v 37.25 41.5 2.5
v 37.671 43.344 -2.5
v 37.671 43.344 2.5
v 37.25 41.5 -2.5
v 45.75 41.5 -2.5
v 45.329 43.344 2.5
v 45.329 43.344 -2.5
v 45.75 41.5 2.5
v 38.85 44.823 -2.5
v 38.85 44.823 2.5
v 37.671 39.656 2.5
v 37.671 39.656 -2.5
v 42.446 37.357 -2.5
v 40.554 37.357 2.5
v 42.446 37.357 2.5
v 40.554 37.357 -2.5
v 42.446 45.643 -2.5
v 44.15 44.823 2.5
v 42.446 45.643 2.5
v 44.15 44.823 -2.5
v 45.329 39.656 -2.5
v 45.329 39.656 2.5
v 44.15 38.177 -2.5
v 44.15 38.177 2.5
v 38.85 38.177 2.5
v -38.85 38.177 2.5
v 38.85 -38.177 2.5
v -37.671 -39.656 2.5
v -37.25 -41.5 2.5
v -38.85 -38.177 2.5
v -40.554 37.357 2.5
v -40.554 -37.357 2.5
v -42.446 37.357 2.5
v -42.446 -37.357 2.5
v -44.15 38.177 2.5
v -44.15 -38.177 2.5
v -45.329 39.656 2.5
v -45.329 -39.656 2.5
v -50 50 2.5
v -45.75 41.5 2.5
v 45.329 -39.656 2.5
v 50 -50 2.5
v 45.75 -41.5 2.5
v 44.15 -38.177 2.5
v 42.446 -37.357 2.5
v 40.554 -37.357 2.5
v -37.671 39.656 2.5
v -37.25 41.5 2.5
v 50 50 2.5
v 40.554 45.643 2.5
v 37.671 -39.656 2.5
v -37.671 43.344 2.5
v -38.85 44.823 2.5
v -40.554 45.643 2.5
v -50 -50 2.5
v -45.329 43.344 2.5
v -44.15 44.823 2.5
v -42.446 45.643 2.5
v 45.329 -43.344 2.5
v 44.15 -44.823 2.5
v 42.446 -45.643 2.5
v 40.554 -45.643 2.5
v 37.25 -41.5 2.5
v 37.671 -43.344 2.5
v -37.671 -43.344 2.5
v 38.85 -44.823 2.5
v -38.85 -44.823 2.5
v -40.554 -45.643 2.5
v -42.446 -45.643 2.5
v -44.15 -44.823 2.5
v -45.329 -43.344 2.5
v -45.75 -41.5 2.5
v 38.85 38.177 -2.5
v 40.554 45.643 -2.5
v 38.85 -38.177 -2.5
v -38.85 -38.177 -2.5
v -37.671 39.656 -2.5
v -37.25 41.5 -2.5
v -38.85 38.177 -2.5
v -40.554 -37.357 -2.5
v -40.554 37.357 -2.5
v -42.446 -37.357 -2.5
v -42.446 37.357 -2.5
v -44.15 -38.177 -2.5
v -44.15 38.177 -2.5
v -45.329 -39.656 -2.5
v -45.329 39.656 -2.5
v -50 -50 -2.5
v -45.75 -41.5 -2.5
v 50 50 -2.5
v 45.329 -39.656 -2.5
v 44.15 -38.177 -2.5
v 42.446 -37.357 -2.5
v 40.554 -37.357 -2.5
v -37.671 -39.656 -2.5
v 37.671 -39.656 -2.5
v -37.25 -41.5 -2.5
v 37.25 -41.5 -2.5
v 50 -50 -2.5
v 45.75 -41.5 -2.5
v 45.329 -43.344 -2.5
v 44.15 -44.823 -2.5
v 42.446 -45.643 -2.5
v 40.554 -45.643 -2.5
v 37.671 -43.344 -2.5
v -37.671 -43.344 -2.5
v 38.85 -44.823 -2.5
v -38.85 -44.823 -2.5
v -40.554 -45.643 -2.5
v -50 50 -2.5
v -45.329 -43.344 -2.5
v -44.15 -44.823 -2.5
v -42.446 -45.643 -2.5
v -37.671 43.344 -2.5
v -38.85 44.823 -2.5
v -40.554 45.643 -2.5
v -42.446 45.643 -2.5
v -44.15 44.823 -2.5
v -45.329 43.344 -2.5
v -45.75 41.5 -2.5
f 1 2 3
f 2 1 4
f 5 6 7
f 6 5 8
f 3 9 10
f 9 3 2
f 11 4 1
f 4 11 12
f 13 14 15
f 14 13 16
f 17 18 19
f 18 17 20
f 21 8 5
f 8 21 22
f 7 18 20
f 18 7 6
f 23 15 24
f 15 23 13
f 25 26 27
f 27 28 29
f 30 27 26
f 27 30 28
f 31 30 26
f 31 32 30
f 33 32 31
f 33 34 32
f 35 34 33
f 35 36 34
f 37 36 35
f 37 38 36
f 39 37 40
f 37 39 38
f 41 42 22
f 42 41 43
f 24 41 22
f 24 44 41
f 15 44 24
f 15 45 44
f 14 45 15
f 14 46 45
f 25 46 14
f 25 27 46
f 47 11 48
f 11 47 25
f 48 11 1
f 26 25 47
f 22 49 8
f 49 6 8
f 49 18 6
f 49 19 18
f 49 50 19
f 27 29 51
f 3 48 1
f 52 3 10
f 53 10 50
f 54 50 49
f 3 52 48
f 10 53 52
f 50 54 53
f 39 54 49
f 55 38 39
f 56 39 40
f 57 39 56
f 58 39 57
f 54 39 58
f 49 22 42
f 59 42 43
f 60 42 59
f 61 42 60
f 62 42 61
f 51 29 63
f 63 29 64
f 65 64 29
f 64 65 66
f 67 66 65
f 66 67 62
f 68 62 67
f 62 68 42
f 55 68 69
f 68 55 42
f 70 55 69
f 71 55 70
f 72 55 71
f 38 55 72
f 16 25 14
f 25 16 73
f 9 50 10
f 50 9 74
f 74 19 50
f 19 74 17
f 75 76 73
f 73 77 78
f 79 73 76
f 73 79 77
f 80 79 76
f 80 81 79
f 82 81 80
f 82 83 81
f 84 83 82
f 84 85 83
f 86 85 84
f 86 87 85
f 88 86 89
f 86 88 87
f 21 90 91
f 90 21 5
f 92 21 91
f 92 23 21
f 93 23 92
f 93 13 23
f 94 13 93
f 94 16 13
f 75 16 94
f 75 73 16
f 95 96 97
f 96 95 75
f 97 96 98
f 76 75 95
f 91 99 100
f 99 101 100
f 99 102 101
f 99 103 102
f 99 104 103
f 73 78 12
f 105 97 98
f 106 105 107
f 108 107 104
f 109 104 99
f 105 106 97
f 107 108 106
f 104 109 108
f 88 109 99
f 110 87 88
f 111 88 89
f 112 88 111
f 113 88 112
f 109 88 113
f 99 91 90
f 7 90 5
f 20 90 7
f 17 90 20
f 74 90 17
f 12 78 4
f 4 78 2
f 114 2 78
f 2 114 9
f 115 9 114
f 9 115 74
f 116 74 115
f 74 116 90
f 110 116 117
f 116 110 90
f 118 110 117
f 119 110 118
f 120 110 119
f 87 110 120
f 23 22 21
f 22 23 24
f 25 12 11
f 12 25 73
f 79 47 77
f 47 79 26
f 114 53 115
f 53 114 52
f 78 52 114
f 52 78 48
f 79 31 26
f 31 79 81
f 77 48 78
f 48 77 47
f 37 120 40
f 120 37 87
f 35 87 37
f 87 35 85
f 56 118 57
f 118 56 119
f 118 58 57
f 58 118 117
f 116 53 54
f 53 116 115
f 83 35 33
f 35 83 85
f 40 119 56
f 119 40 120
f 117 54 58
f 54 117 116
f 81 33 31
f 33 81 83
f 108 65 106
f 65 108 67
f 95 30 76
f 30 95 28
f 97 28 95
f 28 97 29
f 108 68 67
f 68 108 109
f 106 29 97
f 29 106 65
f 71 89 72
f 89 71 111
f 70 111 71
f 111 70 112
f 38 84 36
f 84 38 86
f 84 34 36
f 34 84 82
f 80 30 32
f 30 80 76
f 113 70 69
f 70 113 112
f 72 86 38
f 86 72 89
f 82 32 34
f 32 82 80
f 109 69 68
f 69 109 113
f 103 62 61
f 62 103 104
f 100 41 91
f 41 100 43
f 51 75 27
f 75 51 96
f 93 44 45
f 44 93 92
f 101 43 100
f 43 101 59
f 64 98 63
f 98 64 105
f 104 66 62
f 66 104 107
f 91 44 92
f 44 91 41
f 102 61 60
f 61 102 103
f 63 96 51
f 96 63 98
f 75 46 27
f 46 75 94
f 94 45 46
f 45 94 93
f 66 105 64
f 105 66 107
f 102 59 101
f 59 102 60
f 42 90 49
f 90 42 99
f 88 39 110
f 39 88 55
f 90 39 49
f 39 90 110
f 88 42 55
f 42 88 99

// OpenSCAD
// Generated by SolidPython 1.1.3 on 2023-07-05 19:44:40


difference() {
	cube(center = true, size = [100, 100, 5]);
	union() {
		translate(v = [41.5000000000, 41.5000000000]) {
			cylinder(center = true, h = 5, r = 4.2500000000);
		}
		translate(v = [-41.5000000000, 41.5000000000]) {
			cylinder(center = true, h = 5, r = 4.2500000000);
		}
		translate(v = [-41.5000000000, -41.5000000000]) {
			cylinder(center = true, h = 5, r = 4.2500000000);
		}
		translate(v = [41.5000000000, -41.5000000000]) {
			cylinder(center = true, h = 5, r = 4.2500000000);
		}
	}
}
/***********************************************
*********      SolidPython code:      **********
************************************************
 
import solid
import numbers
import pudb
from solid.utils import *
import viewscad
import subprocess
import os
import os.path as osp
import math
import sys

chamfer_extrude=solid.import_scad("./chamfer_extrude.scad")
chamfer_extrude=chamfer_extrude.chamfer_extrude
r = viewscad.Renderer(width=800, height=800)

def debug(model,f_name,path="/home/ts/code/projects/mfd/designs/debug"):
    solid.scad_render_to_file(model,osp.join(path,f_name)+".scad")
#generate position list of wells using offset from center
wells_pos_from_center_4 = lambda offset: [[-offset,offset],
                                        [offset, offset],
                                        [-offset, -offset],
                                        [offset, -offset]]
#wells_pos_from_center_2 = lambda offset: [[0,offset],
#                                        [0, -offset]]
wells_pos_from_center_2 = lambda offset: [[offset,0],
                                        [-offset,0]]

def make_well(dims,shape=None,height=None,dxf=False):
    def circle_cylinder():
        if dxf or (height is None):
            well = solid.circle(r=dims, segments=64)
        else:
            well = solid.cylinder(r=dims, h=height, segments=64, center = True)
        return well
    if dims is None:
        sys.exit("radius needs to be a number")
    if isinstance(dims, numbers.Number):
        well =circle_cylinder()
    elif len(dims)==1:
        if isinstance(dims[1], numbers.Number):
            well =circle_cylinder()
        else:
            sys.exit("radius needs to be a number")
    elif len(dims)==2:
        well = solid.square(dims,center = True)
    elif len(dims)==3:
        well = solid.cube(dims, center = True)
    return well

def wells_top_bottom(center_gap,device_dims=None,shape=None,height=None, positions = None, dxf = False):
    well_shape = make_well(device_dims,shape=shape,height=height,dxf=dxf)
    wells = []
    if positions is None:
        offset = radius+radius/2.0
        positions = wells_pos_from_center_2(offset)
    if dxf or (height is None):
        height = 0
    for position in positions:
        if dxf:
            wells.append(solid.translate([position[0],position[1]])(well_shape))
        else:
            wells.append(solid.translate([position[0],position[1],height/2.0])(well_shape))
    return  union()(*wells)

#place wells in four corners 
def four_corner(radius,height=None, positions = None, dxf = False):
    #if well pos not specified set
    #to equally spaced by half radius
    if positions is None:
        offset = radius+radius/2.0
        positions = wells_pos_from_center_4(offset)
    if dxf or (height is None):
        height = 0
    #make wells at positions with specified radius and height
    wells = []
    for position in positions:
        #make circle if making dxf
        if dxf:
            well_shape = solid.circle(r=radius, segments=64)
            well_shape = solid.translate([position[0],position[1]])(well_shape)
        #if stl make cylinder
        else:
            well_shape = solid.cylinder(r=radius, h=height, segments=64, center = True)
            well_shape = solid.translate([position[0],position[1],height/2.0])(well_shape)
        wells.append(well_shape)
    return  union()(*wells)

#generate channels 
def make_channels(length,width,height=0,num_chans=1,max_chans=None,spacing=None, dxf = False,
                  rotate_channels=False):
    if dxf or (height is None):
        height = 0
    #if channel gap not defined, is equal to
    if spacing is None: spacing = width
    #calculate number of channels if fitting max num within given width
    if not max_chans is None:
        import math
        num_chans = math.floor((max_chans-spacing)/(width+spacing))
    #get total width of channel section  
    total_width = (width*num_chans)+(spacing*(num_chans-1))

    #make template channel
    #if rotate_channels: width, length = length, width
    if dxf:
        channel_t = solid.square([length,width],center = True)
    else:
        channel_t = solid.cube([length,width,height], center = True)

    #if number channels is even, offset the first channel to center its gap
    if num_chans % 2 == 0: centering = -(width/2.0+spacing/2.0)
    else: centering = 0
    #move template channel up to align bottom at z = 0 
    #and offset center if necessary
    if dxf:
        channel_t = solid.translate([0,centering])(channel_t)
    else:
        channel_t = solid.translate([0,centering,height/2.0])(channel_t)

    #if rotate_channels: length,width = width,length
    #start making the channels
    channels = []
    for i in range(num_chans):
        #if i=0 there is no translation
        #if i=1, we make the first channel adjacent to second
        direction = i

        #if i>=1, we add channels alternating left and right
        if i >= 1:
            direction = -(i/2.0)
            if i % 2 == 1: direction = (-direction)+0.5
                
        #make channel at right position and add it to channel list
        translation_coords = [0,direction*(width+spacing)]
        #if rotate_channels: translation_coords = [direction*(width+spacing),0]
        if dxf:
            channel = solid.translate(translation_coords)(channel_t)
        else:
            channel = solid.translate([*translation_coords,0])(channel_t)
        channels.append(channel)
    
    #group all channels as one object
    channels = union()(*channels)
    #compute the x,y,z dimensions in order to pass as arguments 
    #for construction of other parts of device (such as the chambers)
    measurements = {'x':(length/2.0,-length/2.0),
                    'y':(total_width/2.0,-total_width/2.0)}
    if not dxf:
        measurements['z'] = (height,0)
    if rotate_channels:
        channels = solid.rotate(90)(channels)
        measurements['x'],measurements['y']=measurements['y'],measurements['x']
    return channels,measurements

def make_chambers(msrs,height=None,extra=0,len_until=None,width=None, dxf = False):
    #computes x,y,z length
    total = lambda x : abs(x[0]) + abs(x[1])
    
    #if specific height if specified
    #otherwise use same height as channels
    if dxf:
        pass
    elif not height is None:
        msrs['z'] = (height,0)
    else:
        msrs['z'] = (0,0)
        
    #make copy of measurements from channels to modify chamber dimensions 
    #and add length to chambers as specified
    chamber_dims = msrs.copy()
    #calculate length of chamber to reach specified offset
    if not len_until is None:
        chamber_len = len_until-(msrs['x'][0])
    #or add specified length to channel length (if not specified, adds 0)
    else:
        chamber_len = msrs['x'][0]+extra
    #set the chamber length based 
    chamber_dims['x'] = (chamber_len/2.0,-(chamber_len/2.0))
    #compute final dimensions of chamber
    if not width is None:
        chamber_dims['y'] = (width/2.0,-width/2.0)
    chamber_dims = [total(size) for size in chamber_dims.values()]
        
    #calculate chamber translation offset to place adjacent to channels
    chamber_trslt = msrs['x'][0]+(chamber_len/2.0)
    #compute chamber translation coordinates to align with channels
    #x = 1 moves chamber above channels
    #x = -1 moves chamber below channels
    if dxf:
        trslt = lambda x : [x*(chamber_trslt),0]
    else:
        trslt = lambda x : [x*(chamber_trslt),0,msrs['z'][0]/2.0]
    
    #function to make chamber at top or at bottom 
    if dxf:
        move = lambda x : solid.translate(trslt(x))(solid.square(chamber_dims, center = True) )
    else:
        move = lambda x : solid.translate(trslt(x))(solid.cube(chamber_dims,center = True))
    #make top and bottom chambers and return them as grouped
    top = move(1)
    bottom = move(-1)
    #chambers=solid.rotate(90)(solid.union()(top,bottom))
    chambers=(solid.union()(top,bottom))

    return chambers

#create alignment features 
def alignment_features(unit,dims,grid_size, mask_size = None, alignment = "hollow", units_from_center = (2.5,2.5), corner_len=None):
    width = grid_size[0]*dims[0]
    length = grid_size[1]*dims[1]
    if mask_size is None and corner_len is None:
        corner_len = (dims[0] + dims[1]) /2 / 8
    corner = lambda thickness_div : solid.union()( solid.square([corner_len,corner_len/thickness_div],center=False), solid.square([corner_len/thickness_div,corner_len],center=False) )
    
    def make_full(thickness_div):
        thickness = corner_len/thickness_div
        tr = solid.translate([0, 0, 0 ])(solid.rotate(180)(corner(thickness_div)))
        tr = solid.translate([thickness/2,thickness/2,0])(tr)
        bl = solid.translate([0, 0, 0 ])(solid.rotate(0)(corner(thickness_div)))
        bl = solid.translate([-thickness/2,-thickness/2,0])(bl)
        return solid.union()(tr,bl)
    
    def make_hollow(thickness_div):
        thickness = corner_len/(thickness_div/2)
        inner = make_full(thickness_div)
        outer = make_full(thickness_div/2)
        hollow = outer - inner 
        return hollow
    
    center = (width /2 , length/2)
    mask_pos = lambda x,y : (center[0] + x*(float(units_from_center[0])*dims[0]), center[1] + y*(float(units_from_center[1])*dims[1]))
    positions = []
    positions.append(mask_pos(1,0))
    positions.append(mask_pos(0,1))
    positions.append(mask_pos(-1,0))
    positions.append(mask_pos(0,-1))
    make_mask = lambda mtype : make_hollow(8) if mtype == "hollow" else make_full(8)
    masks = [ solid.translate([*position,0])(make_mask(alignment)) for position in positions]
    
    solid.scad_render_to_file(solid.union()(*masks),"./designs/open_chamber/masks.scad")
    #return unit - solid.union()(*masks)
    return solid.union()(*masks,unit)

def create_outline(thickness, array, dims, grid_size,):
    width = grid_size[0]*dims[0] + thickness *2
    length = grid_size[1]*dims[1] + thickness *2
    outer = solid.translate([-thickness, -thickness,0])(solid.square([width, length]))
    return outer-array

def create_wall(wall_thickness, outline_thickness, dims, grid_size, wall_height = 2000, dxf = False):
    inner_width = grid_size[0]*dims[0] + outline_thickness *2
    inner_length = grid_size[1]*dims[1] + outline_thickness *2
    outer_width = inner_width + wall_thickness * 2
    outer_length = inner_length + wall_thickness * 2
    outer_pos_x = -outline_thickness-wall_thickness
    outer_pos_y = -outline_thickness-wall_thickness
    inner_pos_x = -outline_thickness
    inner_pos_y = -outline_thickness
    if dxf:
        inner_wall = solid.translate([inner_pos_x,
                                      inner_pos_y,
                                      0])(solid.square([inner_width, inner_length]))
        outer_wall = solid.translate([outer_pos_x,
                                      outer_pos_y,
                                      0])(solid.square([outer_width, outer_length]))

        return outer_wall-inner_wall
    else:
        inner_wall = solid.translate([inner_pos_x,
                                      inner_pos_y,
                                      0])(solid.cube([inner_width, inner_length,wall_height]))
        outer_wall = solid.translate([outer_pos_x,
                                      outer_pos_y,
                                      0])(solid.cube([outer_width, outer_length,wall_height]))

        return outer_wall-inner_wall, {'wall_height': wall_height,
                                       'wall_thickness': wall_thickness,
                                       'inner_width':inner_width,
                                       'inner_length': inner_length,
                                       'outer_width': outer_width,
                                       'outer_length': outer_length,
                                       'outer_pos_x' : outer_pos_x,
                                       'outer_pos_y' : outer_pos_y,
                                       'inner_pos_x' : inner_pos_x,
                                       'inner_pos_y' : inner_pos_y}

def create_thicker_wall(wall_thickness, outer_wall_offset, wall_dims, dims, grid_size, height_start = .2, height_end=2, dxf = False):
    addon_wall,thicker_wall_dims = create_wall(wall_thickness, outer_wall_offset, dims, grid_size, wall_height=height_end-height_start, dxf = False)
    addon_wall = solid.translate([0,0,height_start])(addon_wall)

    thicker_wall_dims['wall_height'] = height_end
    thicker_wall_dims['wall_thickness'] = wall_dims['wall_thickness'] + wall_thickness
    return addon_wall, thicker_wall_dims
 
def add_lock_to_wall(wall,wall_dims,y_offset = 0,cut_ratio=0.7,L_length=3, gap_ratio=0.05, axis="x",width_ratio=1/2):
    # Makes L shape
    def make_L(max_length,length_thickness,max_width,width_thickness,height,y_offset):
        length = solid.cube([max_length,length_thickness,height])
        width = solid.cube([width_thickness,max_width,height])
        width = solid.translate([max_length-(width_thickness),0,0])(width)
        L = solid.union()(width,length)
        debug(L,"L")
        if axis == "x":
            L = solid.rotate(-90)(L)
            L = solid.translate([0,max_length,0])(L)
        else:
            L = solid.rotate(-180)(L)
            L = solid.translate([max_length,max_width,0])(L)
        return solid.translate([0,0,y_offset])(L)
    
    lock_length = L_length
    lock_width = wall_dims['wall_thickness']*width_ratio
    lock_length_thickness = lock_width/2
    lock_width_thickness = lock_width/2
    L_lock = make_L(lock_length,lock_length_thickness,lock_width,lock_width_thickness, wall_dims['wall_height']-y_offset, y_offset)
    
    margin_space = lock_length - lock_length*(1-gap_ratio)
    key_length = lock_length-margin_space
    key_length_thickness = lock_length_thickness-(margin_space*2)
    key_width = lock_width-(margin_space*2)
    key_width_thickness = lock_width_thickness-(margin_space*2)
    L_key = make_L(key_length,key_length_thickness,key_width,key_width_thickness, wall_dims['wall_height']-y_offset, y_offset)
    L_key = solid.translate([margin_space,margin_space,0])(L_key)
    L = solid.union()(L_lock,L_key)
    debug(L,"L")
    
    #Make cube to be used as negative to split frame in a half
    #Can choose if making left or right negative, specify ratio of split
    def make_negative(right,cut_ratio):
        if axis == "x":
            if right:
                length = wall_dims['outer_length']*(1-cut_ratio)
                pos_x = wall_dims['outer_pos_x']+(wall_dims['outer_length']*cut_ratio)
            else:
                length = wall_dims['outer_length']*(cut_ratio)
                pos_x = wall_dims['outer_pos_x'] 
            negative = solid.cube([wall_dims['outer_width'],length, wall_dims['wall_height']])
            negative = solid.translate([wall_dims['outer_pos_y'],pos_x,0])(negative)
        else:
            if right:
                length = wall_dims['outer_width']*(1-cut_ratio)
                pos_x = wall_dims['outer_pos_y']+(wall_dims['outer_width']*cut_ratio)
            else:
                length = wall_dims['outer_width']*(cut_ratio)
                pos_x = wall_dims['outer_pos_y'] 
            negative = solid.cube([length,wall_dims['outer_length'], wall_dims['wall_height']])
            negative = solid.translate([pos_x,wall_dims['outer_pos_x'],0])(negative)
        return negative, pos_x, length 
                      
    #Make negatives
    negative_right, right_half_pos_x, right_half_length = make_negative(True,cut_ratio)
    negative_left, left_half_pos_x, right_half_length = make_negative(False,cut_ratio)
    #Make halves
    left_half = solid.difference()(wall,negative_right)
    right_half = solid.difference()(wall,negative_left)
    def place_L(L, L_length,L_width):
        #Place L on top wall       
        offset_to_center = (wall_dims['wall_thickness']-L_width)/2
        if axis == "x":
            y_pos_top = (wall_dims['outer_pos_y'] +
                    wall_dims['outer_width'] - 
                    L_width - offset_to_center)
            top_L = solid.translate([y_pos_top,
                                     right_half_pos_x-(L_length),
                                     0])(L)
            #Place L on bottom wall       
            y_pos_bottom = wall_dims['outer_pos_y']+offset_to_center
            bottom_L = solid.translate([y_pos_bottom,
                                        right_half_pos_x-L_length,
                                        0])(L)
        else:
            y_pos_top = (wall_dims['outer_pos_x'] +
                    wall_dims['outer_length'] -
                    (L_width+offset_to_center))
            top_L = solid.translate([right_half_pos_x-L_length,
                                     y_pos_top,
                                     0])(L)
            #Place L on bottom wall       
            y_pos_bottom = wall_dims['outer_pos_y']+offset_to_center
            bottom_L = solid.translate([right_half_pos_x-L_length,
                                        y_pos_bottom,
                                        0])(L)
        return bottom_L, top_L
    #Make complimentary L pieces through union and differences
    #Make Lock
    bottom_L_lock, top_L_lock = place_L(L_lock,L_length,lock_width)
    left_half = solid.difference()(left_half,bottom_L_lock)
    left_half = solid.difference()(left_half,top_L_lock)
    #Make Key
    bottom_L_key, top_L_key = place_L(L_key,L_length,lock_width)
    right_half = solid.union()(right_half,bottom_L_key)
    right_half = solid.union()(right_half,top_L_key)
    return left_half, right_half


#build a row x col grid of containment units
def make_unit_array(unit,dims,grid_size, dxf = False, alignment = None, mask_size = None,
                    units_from_center = None,alignment_offset=None, alignment_mark_size=1):
    units = []
    for col in range(grid_size[1]):
        for row in range(grid_size[0]):
            if dxf:
                units.append(solid.translate([row*dims[0],col*dims[1]])(unit))
            else:
                units.append(solid.translate([row*dims[0],col*dims[1],dims[2]/2.0])(unit))
    array = solid.union()(*units)
    if (not alignment is None) and dxf:
        if not alignment_offset is None:
            array = solid.translate([alignment_offset[0],alignment_offset[1]])(array)
        array = alignment_features(array,dims, grid_size, alignment = alignment, mask_size = None, units_from_center = units_from_center,corner_len=alignment_mark_size)
        if not alignment_offset is None:
            array = solid.translate([-alignment_offset[0],-alignment_offset[1]])(array)
    return array


def make_taylor(wells_pos = wells_pos_from_center_4(2.25), well_rad = 1.5 ,
                well_height = 2, chan_w = 0.01, chan_l = 1, chan_h = 0.010 ,
                chan_gap = 0.040, max_chans = None,num_chans=100, chamber_height  = 0.100,
                columns = 1, rows = 1, chamber_len_until=2.25, add_channels = True, add_wells = True, 
                add_chambers = True, save_path = "./", alignment = None, units_from_center = 2,
                mask_size = None, render_stl = False, outline_thickness = 0.050, dxf = True,
                wall_height = 15, wall_thickness = 0.95, casing_x=9, casing_y=9, casing_z=0,rotate_units=0):

    dims = [casing_x, casing_y, casing_z]
    wells = four_corner(well_rad,well_height, dxf = dxf, positions = wells_pos)
    debug(wells,"wells")
    channels, msrs = make_channels(chan_l,chan_w,chan_h,dxf=dxf, spacing = chan_gap, max_chans=max_chans,num_chans=num_chans)
    debug(channels,"channels")
    chambers = make_chambers(msrs,dxf = dxf, height=chamber_height,len_until=chamber_len_until)
    debug(chambers,"chambers")

    #add together and render
    device_parts = []
    if add_channels:
        device_parts.append(channels)
    if add_wells:
        device_parts.append(wells)
    if add_chambers:
        device_parts.append(chambers)
    device=union()(*device_parts)
    device = rotate(rotate_units)(device)

    device=solid.translate([dims[0]/2.0,dims[1]/2.0,0])(device)
    channels = rotate(rotate_units)(channels)
    channels=solid.translate([dims[0]/2,dims[1]/2,0])(channels)
    chambers_wells = union()(wells,chambers)
    chambers_wells = rotate(rotate_units)(chambers_wells)
    chambers_wells=solid.translate([dims[0]/2,dims[1]/2,0])(chambers_wells)

    file_name = str(rows)+'x'+str(columns)+'_units_'
    grid_size = [rows,columns]

    if alignment:
        alignment="full"
    device = make_unit_array(device,dims,grid_size, dxf=dxf, alignment = alignment,
                                 units_from_center = units_from_center)
    channels = make_unit_array(channels,dims,grid_size, dxf=dxf, alignment = alignment,
                                 units_from_center = units_from_center)
    if alignment=="full":
        alignment="hollow"

    chambers_wells = make_unit_array(chambers_wells,dims,grid_size, dxf=dxf, alignment = alignment,
                                 units_from_center =units_from_center)

    def save_model(model,prefix):
        model_fname = os.path.abspath(save_path+prefix+"_"+file_name+".scad")
        solid.scad_render_to_file(model,model_fname)
        return model_fname

    wells_fname = save_model(wells,"wells")
    channels_fname = save_model(channels,"channels")
    device_fname = save_model(device,"device")
    chambers_wells_fname = save_model(chambers_wells,"chambers_wells")
    return (chambers_wells,chambers_wells_fname), (channels,channels_fname), (device,device_fname)

def make_device(design='open',rows=8,columns=6,wells_pos = 4.5,well_offset=3.2, well_rad=3.2,well_height=0.1,
                chan_l=1,chan_w=0.01,chan_h=0.01,chan_gap=0.015,num_chans=101,dxf=True,save_path="./designs/open_chamber/",
                casing_x=9.0,casing_y=18.0,casing_z=0,rotate_units=90,units_from_center=(3,1),chamber_len_until=4.5,
                chamber_width=None,alignment=True, add_wells=True, add_channels=True,add_chambers=True):

    dims = [casing_x, casing_y, casing_z]
    if design == "open":
        wells_pos=wells_pos_from_center_2(wells_pos)
        wells = wells_top_bottom(well_offset*2,device_dims=well_rad,height=well_height, dxf = dxf, positions = wells_pos)
    elif design == "closed":
        wells_pos=wells_pos_from_center_4(wells_pos)
        debug(wells,"wells")
        wells = four_corner(well_offset,well_heightdevice_dims=well_rad, dxf = dxf, positions = wells_pos)
    else:
        print(design+" is not a valid design.\n Choose valid design: 'open' or 'closed'")
        exit()
    wells = rotate(rotate_units)(wells)
    wells=solid.translate([dims[0]/2,dims[1]/2,0])(wells)
    debug(wells,"wells")

    channels, msrs = make_channels(chan_l,chan_w,chan_h,dxf=dxf, spacing = chan_gap, num_chans=num_chans,rotate_channels=False)
    channels = rotate(rotate_units)(channels)
    channels=solid.translate([dims[0]/2,dims[1]/2,0])(channels)

    chambers=make_chambers(msrs,height=None,extra=0,len_until=chamber_len_until, width=chamber_width,dxf = dxf)
    chambers = rotate(rotate_units)(chambers)
    chambers=solid.translate([dims[0]/2,dims[1]/2,0])(chambers)

    device_parts = []
    if add_channels:
        device_parts.append(channels)
    if add_wells:
        device_parts.append(wells)
    if add_chambers:
        device_parts.append(chambers)
    device = union()(*device_parts)
    #device = rotate(rotate_units)(device)
    #device=solid.translate([dims[0]/2.0,dims[1]/2.0,0])(device)

    chambers_wells = []
    if add_chambers:
        chambers_wells.append(chambers)
    if add_wells:
        chambers_wells.append(wells)
    chambers_wells = union()(*chambers_wells)
    #chambers_wells = union()(wells,chambers)
    #chambers_wells = rotate(rotate_units)(chambers_wells)
    #chambers_wells=solid.translate([dims[0]/2,dims[1]/2,0])(chambers_wells)

    file_name = str(rows)+'x'+str(columns)+'_units_'

    grid_size = [rows,columns]
    if alignment:
        alignment="full"
    device = make_unit_array(device,dims,grid_size, dxf=dxf, alignment = alignment,
                                 units_from_center = units_from_center)
    channels = make_unit_array(channels,dims,grid_size, dxf=dxf, alignment = alignment,
                                 units_from_center = units_from_center)
    if alignment=="full":
        alignment="hollow"

    chambers_wells = make_unit_array(chambers_wells,dims,grid_size, dxf=dxf, alignment = alignment,
                                 units_from_center =units_from_center)

    def save_model(model,prefix):
        model_fname = os.path.abspath(save_path+prefix+"_"+file_name+".scad")
        solid.scad_render_to_file(model,model_fname)
        return model_fname

    wells_fname = save_model(wells,"wells")
    channels_fname = save_model(channels,"channels")
    device_fname = save_model(device,"device")
    chambers_wells_fname = save_model(chambers_wells,"chambers_wells")
    return (chambers_wells,chambers_wells_fname), (channels,channels_fname), (device,device_fname)


def make_open_chamber(rows=8,columns=6,wells_pos = wells_pos_from_center_2(4.5), well_rad=3.2,well_height=0.1,
                      chan_l=1,chan_w=0.01,chan_h=0.01,chan_gap=0.015,num_chans=101,dxf=True,save_path="./designs/open_chamber/",
                      casing_x=9.0,casing_y=18.0,casing_z=0,rotate_units=90,units_from_center=(3,1),chamber_len_until=4.5,
                      chamber_width=None,alignment=True, add_wells=True, add_channels=True,add_chambers=True):

    dims = [casing_x, casing_y, casing_z]
    wells = wells_top_bottom(well_rad,height=well_height, dxf = dxf, positions = wells_pos)
    channels, msrs = make_channels(chan_l,chan_w,chan_h,dxf=dxf, spacing = chan_gap, num_chans=num_chans,rotate_channels=False)
    chambers=make_chambers(msrs,height=None,extra=0,len_until=chamber_len_until, width=chamber_width,dxf = dxf)
    debug(chambers,"chambers")
    device_parts = []
    if add_channels:
        device_parts.append(channels)
    if add_wells:
        device_parts.append(wells)
    if add_chambers:
        device_parts.append(chambers)
    device = union()(*device_parts)
    device = rotate(rotate_units)(device)
    device=solid.translate([dims[0]/2.0,dims[1]/2.0,0])(device)
    channels = rotate(rotate_units)(channels)
    channels=solid.translate([dims[0]/2,dims[1]/2,0])(channels)
    chambers_wells = union()(wells,chambers)
    chambers_wells = rotate(rotate_units)(chambers_wells)
    chambers_wells=solid.translate([dims[0]/2,dims[1]/2,0])(chambers_wells)

    file_name = str(rows)+'x'+str(columns)+'_units_'

    grid_size = [rows,columns]
    if alignment:
        alignment="full"
    device = make_unit_array(device,dims,grid_size, dxf=dxf, alignment = alignment,
                                 units_from_center = units_from_center)
    channels = make_unit_array(channels,dims,grid_size, dxf=dxf, alignment = alignment,
                                 units_from_center = units_from_center)
    if alignment=="full":
        alignment="hollow"

    chambers_wells = make_unit_array(chambers_wells,dims,grid_size, dxf=dxf, alignment = alignment,
                                 units_from_center =units_from_center)

    def save_model(model,prefix):
        model_fname = os.path.abspath(save_path+prefix+"_"+file_name+".scad")
        solid.scad_render_to_file(model,model_fname)
        return model_fname

    wells_fname = save_model(wells,"wells")
    channels_fname = save_model(channels,"channels")
    device_fname = save_model(device,"device")
    chambers_wells_fname = save_model(chambers_wells,"chambers_wells")
    return (chambers_wells,chambers_wells_fname), (channels,channels_fname), (device,device_fname)

def to_dxf(scad_path):
    dxf_path = scad_path.replace(".scad",".dxf")
    subprocess.call(["openscad", "-o", dxf_path, scad_path])
    import ezdxf
    temp_dxf = ezdxf.readfile(dxf_path)
    temp_dxf.saveas(dxf_path)

#def make_walls(diameter,thickness,grid_size,dims,height=20,segments=256,make_inner=True):
#    wafer_wall_out = solid.cylinder(r=diameter/2,h=height, segments=segments)
#    wafer_wall_in = solid.cylinder(r=(diameter/2-thickness),h=height, segments=segments)
#    wafer_wall = solid.difference()(wafer_wall_out,wafer_wall_in)
#    wafer_wall = solid.translate([grid_size[1]*dims[1]/2.0,grid_size[0]*dims[0]/2.0])(wafer_wall)
#
#    vertical_wall_length = grid_size[1]*dims[1]
#    horizontal_wall_length = grid_size[0]*dims[0]
#    vertical_wall = solid.cube([vertical_wall_length,thickness,height],center = True)
#    vertical_wall = solid.translate([vertical_wall_length/2,0,height/2])(vertical_wall)
#    horizontal_wall = solid.cube([thickness,horizontal_wall_length,height],center = True)
#    horizontal_wall = solid.translate([0,vertical_wall_length/2,height/2])(horizontal_wall)
#    walls = []
#    walls.append(horizontal_wall)
#    walls.append(vertical_wall)
#    for col in range(grid_size[1]):
#        if col == grid_size[1]-1: 
#            walls.append(solid.translate([0,(col+1)*dims[1]])(vertical_wall))
#        elif col > 0 and col < grid_size[1]-1 and make_inner==True:
#            walls.append(solid.translate([0,(col+1)*dims[1]])(vertical_wall))
#    for row in range(grid_size[0]):
#        if row == grid_size[0]-1: 
#            walls.append(solid.translate([(row+1)*dims[0],0])(horizontal_wall))
#        elif row > 0 and row < grid_size[0]-1 and make_inner==True:
#            walls.append(solid.translate([(row+1)*dims[0],0])(horizontal_wall))
#    walls = union()(*walls)
#    wafer_walls = union()(walls,wafer_wall)
#    return walls,wafer_wall,wafer_walls

def make_walls(diameter,thickness,grid_size,dims,height=20,segments=256,make_inner=True,padx=0,pady=0):
    wafer_wall_out = solid.cylinder(r=diameter/2,h=height, segments=segments)
    wafer_wall_in = solid.cylinder(r=(diameter/2-thickness),h=height, segments=segments)
    wafer_wall = solid.difference()(wafer_wall_out,wafer_wall_in)
    wafer_wall = solid.translate([grid_size[1]*dims[1]/2.0,grid_size[0]*dims[0]/2.0])(wafer_wall)

    vertical_wall_length = grid_size[0]*dims[0]+padx
    horizontal_wall_length = grid_size[1]*dims[1]+pady
    vertical_wall = solid.cube([vertical_wall_length,thickness,height],center = True)
    vertical_wall = solid.translate([vertical_wall_length/2-pady/2,-padx/2,height/2])(vertical_wall)
    horizontal_wall = solid.cube([thickness,horizontal_wall_length,height],center = True)
    horizontal_wall = solid.translate([-pady/2,horizontal_wall_length/2-padx/2,height/2])(horizontal_wall)
    walls = []
    walls.append(horizontal_wall)
    walls.append(vertical_wall)
    for col in range(grid_size[1]):
        if col == grid_size[1]-1: 
            walls.append(solid.translate([0,(col+1)*dims[1]+pady])(vertical_wall))
        elif col > 0 and col < grid_size[1]-1 and make_inner==True:
            walls.append(solid.translate([0,(col+1)*dims[1]])(vertical_wall))
    for row in range(grid_size[0]):
        if row == grid_size[0]-1: 
            walls.append(solid.translate([(row+1)*dims[0]+padx,0])(horizontal_wall))
        elif row > 0 and row < grid_size[0]-1 and make_inner==True:
            walls.append(solid.translate([(row+1)*dims[0],0])(horizontal_wall))
    walls = union()(*walls)
    wafer_walls = union()(walls,wafer_wall)
    return walls,wafer_wall,wafer_walls

def save_model(model,base_path,base_name,dxf=True):
    if not os.path.exists(base_path):
        os.makedirs(base_path)
    dxf_path=osp.join(base_path,base_name+".scad")
    solid.scad_render_to_file(model,osp.join(dxf_path))
    if dxf:
        to_dxf(dxf_path)

def make_wafer(diameter,flat_len,thickness):
    wafer = solid.cylinder(r1=diameter/2,r2=diameter/2,h=thickness,segments=512,)()
    x_start_flat=(flat_len/2)
    y_start_flat = math.sqrt(((diameter/2)**2) - (x_start_flat**2) )
    height_delete_flat=diameter/2-y_start_flat
    flat_delete = solid.cube([flat_len,height_delete_flat,thickness],center=False)()
    flat_delete = solid.translate([-flat_len/2,y_start_flat,0])(flat_delete)
    wafer = solid.difference()(wafer,flat_delete)
    wafer = solid.rotate(90)(wafer)
    return wafer

def add_wafer_to_mask(wafer_size,flat_len,mask,grid_size,dims,wafer_line_thickness=0.1,outer_mask_thickness=5,alignment_offset=None):
    def make_wafer_mask(wafer_size,flat_len):
        wafer_mask = make_wafer(wafer_size,flat_len,1)
        wafer_mask = solid.projection()(wafer_mask)
        wafer_mask = solid.translate([grid_size[0]*dims[0]/2.0,grid_size[1]*dims[1]/2.0])(wafer_mask)
        if not alignment_offset is None:
            wafer_mask = solid.translate([-alignment_offset[0],-alignment_offset[1]])(wafer_mask)
        return wafer_mask

    inner_wafer_line_mask = make_wafer_mask(wafer_size-wafer_line_thickness/2,flat_len)
    outer_wafer_line_mask = make_wafer_mask(wafer_size+wafer_line_thickness/2,flat_len)
    outer_wafer_mask = make_wafer_mask(wafer_size+outer_mask_thickness,flat_len)
    outer_wafer_mask = solid.difference()(outer_wafer_mask,outer_wafer_line_mask)
    wafer_mask = solid.union()(outer_wafer_mask,inner_wafer_line_mask)

    return solid.difference()(wafer_mask,mask)

def make_posts(post_shape,post_height):
    posts = solid.linear_extrude(height=post_height)(post_shape)
    return posts

def make_wafer_empty(diameter,flat_len,thickness,margin,notch_len=20,notch_height=5,oversize=1.01):
    diameter*=oversize
    flat_len*=oversize
    wafer = make_wafer(diameter,flat_len,thickness)
    holder = solid.cylinder(r1=diameter/2+margin,r2=diameter/2+margin,h=thickness,segments=512)()
    holder = solid.difference()(holder,wafer)

    x_start_flat=(flat_len/2)
    y_start_flat = math.sqrt(((diameter/2)**2) - (x_start_flat**2) )
    height_delete_flat=diameter/2-y_start_flat
    notch = solid.cube([notch_len,notch_height,thickness],center=False)()
    notch = solid.translate([-notch_len/2,y_start_flat,0])(notch)
    notch = solid.rotate(90)(notch)
    return solid.difference()(holder,notch)

def wafer_print_calibration(diameter,thickness,height,z_offset):
    circles = []
    radii = []
    radii.append(diameter/2.0*0.8)
    radii.append(diameter/2.0*0.6)
    radii.append(diameter/2.0*0.4)
    radii.append(diameter/2.0*0.2)
    for radius in radii:
        inner = solid.cylinder(r1=radius-(thickness/2.0),r2=radius-(thickness/2.0),h=thickness,segments=512,)()
        outer = solid.cylinder(r1=radius+(thickness/2.0),r2=radius+(thickness/2.0),h=thickness,segments=512,)()
        diff = solid.difference()(outer,inner)
        circles.append(diff)
    circles = solid.union()(*circles)
    circles = solid.translate([0,0,z_offset])(circles)
    return circles

def make_rack(wells,dims,grid_size,alignment_offset,rack_x,rack_y,rack_thickness,bolt_width,add_bolts=True):

    #get X and Y dimensions of gride of pipette tips
    X_len = dims[0]*grid_size[0]
    Y_len = dims[1]*grid_size[1]
    #make rack
    rack = solid.cube([rack_x,rack_y,rack_thickness],center=True)

    if add_bolts:
    #add bolt holes
        bolt_hole=solid.cylinder(r=bolt_width/2,h=rack_thickness,center=True)()
        bolt_holes = []
        bolt_holes.append(solid.translate([rack_x/2-1.5*bolt_width,rack_y/2-1.5*bolt_width])(bolt_hole))
        bolt_holes.append(solid.translate([-rack_x/2+1.5*bolt_width,rack_y/2-1.5*bolt_width])(bolt_hole))
        bolt_holes.append(solid.translate([-rack_x/2+1.5*bolt_width,-rack_y/2+1.5*bolt_width])(bolt_hole))
        bolt_holes.append(solid.translate([rack_x/2-1.5*bolt_width,-rack_y/2+1.5*bolt_width])(bolt_hole))
        bolt_holes = solid.union()(*bolt_holes)
        rack=solid.difference()(rack,bolt_holes)
    rack_support = rack

    #center rack with pipette holes
    rack = solid.translate([0,0,rack_thickness/2])(rack)
    rack = solid.translate([X_len/2,Y_len/2])(rack)
    rack = solid.translate([-alignment_offset[0],-alignment_offset[1]])(rack)
    wells = solid.linear_extrude(height=rack_thickness)(wells)
    rack = solid.difference()(rack,wells)
    return rack, rack_support

def make_pillar(wells,dims,grid_size,alignment_offset,rack_x,rack_y,pillar_height,rack_thickness,bolt_width,add_bolts=True,taper_angle=1,bolt_position_corner=1.5):

    #get X and Y dimensions of gride of pipette tips
    X_len = dims[0]*grid_size[0]
    Y_len = dims[1]*grid_size[1]
    #make rack
    rack = solid.cube([rack_x,rack_y,rack_thickness],center=True)
    
    if add_bolts:
    #add bolt holes
        bolt_hole=solid.cylinder(r=bolt_width/2,h=rack_thickness,center=True)()
        bolt_holes = []
        bolt_holes.append(solid.translate([rack_x/2-bolt_position_corner*bolt_width,rack_y/2-bolt_position_corner*bolt_width])(bolt_hole))
        bolt_holes.append(solid.translate([-rack_x/2+bolt_position_corner*bolt_width,rack_y/2-bolt_position_corner*bolt_width])(bolt_hole))
        bolt_holes.append(solid.translate([-rack_x/2+bolt_position_corner*bolt_width,-rack_y/2+bolt_position_corner*bolt_width])(bolt_hole))
        bolt_holes.append(solid.translate([rack_x/2-bolt_position_corner*bolt_width,-rack_y/2+bolt_position_corner*bolt_width])(bolt_hole))
        bolt_holes = solid.union()(*bolt_holes)
        rack=solid.difference()(rack,bolt_holes)
    rack_support = rack

    #center rack with pipette holes
    #rack = solid.translate([0,0,-rack_thickness])(rack)
    rack = solid.translate([X_len/2,Y_len/2])(rack)
    rack = solid.translate([-alignment_offset[0],-alignment_offset[1]])(rack)
    if not taper_angle == 0:
        wells=chamfer_extrude(pillar_height,taper_angle,segments=20)(wells)
    else:
        wells = solid.linear_extrude(height=pillar_height)(wells)
    rack = solid.union()(rack,wells)
    return rack, rack_support









 
 
************************************************/
